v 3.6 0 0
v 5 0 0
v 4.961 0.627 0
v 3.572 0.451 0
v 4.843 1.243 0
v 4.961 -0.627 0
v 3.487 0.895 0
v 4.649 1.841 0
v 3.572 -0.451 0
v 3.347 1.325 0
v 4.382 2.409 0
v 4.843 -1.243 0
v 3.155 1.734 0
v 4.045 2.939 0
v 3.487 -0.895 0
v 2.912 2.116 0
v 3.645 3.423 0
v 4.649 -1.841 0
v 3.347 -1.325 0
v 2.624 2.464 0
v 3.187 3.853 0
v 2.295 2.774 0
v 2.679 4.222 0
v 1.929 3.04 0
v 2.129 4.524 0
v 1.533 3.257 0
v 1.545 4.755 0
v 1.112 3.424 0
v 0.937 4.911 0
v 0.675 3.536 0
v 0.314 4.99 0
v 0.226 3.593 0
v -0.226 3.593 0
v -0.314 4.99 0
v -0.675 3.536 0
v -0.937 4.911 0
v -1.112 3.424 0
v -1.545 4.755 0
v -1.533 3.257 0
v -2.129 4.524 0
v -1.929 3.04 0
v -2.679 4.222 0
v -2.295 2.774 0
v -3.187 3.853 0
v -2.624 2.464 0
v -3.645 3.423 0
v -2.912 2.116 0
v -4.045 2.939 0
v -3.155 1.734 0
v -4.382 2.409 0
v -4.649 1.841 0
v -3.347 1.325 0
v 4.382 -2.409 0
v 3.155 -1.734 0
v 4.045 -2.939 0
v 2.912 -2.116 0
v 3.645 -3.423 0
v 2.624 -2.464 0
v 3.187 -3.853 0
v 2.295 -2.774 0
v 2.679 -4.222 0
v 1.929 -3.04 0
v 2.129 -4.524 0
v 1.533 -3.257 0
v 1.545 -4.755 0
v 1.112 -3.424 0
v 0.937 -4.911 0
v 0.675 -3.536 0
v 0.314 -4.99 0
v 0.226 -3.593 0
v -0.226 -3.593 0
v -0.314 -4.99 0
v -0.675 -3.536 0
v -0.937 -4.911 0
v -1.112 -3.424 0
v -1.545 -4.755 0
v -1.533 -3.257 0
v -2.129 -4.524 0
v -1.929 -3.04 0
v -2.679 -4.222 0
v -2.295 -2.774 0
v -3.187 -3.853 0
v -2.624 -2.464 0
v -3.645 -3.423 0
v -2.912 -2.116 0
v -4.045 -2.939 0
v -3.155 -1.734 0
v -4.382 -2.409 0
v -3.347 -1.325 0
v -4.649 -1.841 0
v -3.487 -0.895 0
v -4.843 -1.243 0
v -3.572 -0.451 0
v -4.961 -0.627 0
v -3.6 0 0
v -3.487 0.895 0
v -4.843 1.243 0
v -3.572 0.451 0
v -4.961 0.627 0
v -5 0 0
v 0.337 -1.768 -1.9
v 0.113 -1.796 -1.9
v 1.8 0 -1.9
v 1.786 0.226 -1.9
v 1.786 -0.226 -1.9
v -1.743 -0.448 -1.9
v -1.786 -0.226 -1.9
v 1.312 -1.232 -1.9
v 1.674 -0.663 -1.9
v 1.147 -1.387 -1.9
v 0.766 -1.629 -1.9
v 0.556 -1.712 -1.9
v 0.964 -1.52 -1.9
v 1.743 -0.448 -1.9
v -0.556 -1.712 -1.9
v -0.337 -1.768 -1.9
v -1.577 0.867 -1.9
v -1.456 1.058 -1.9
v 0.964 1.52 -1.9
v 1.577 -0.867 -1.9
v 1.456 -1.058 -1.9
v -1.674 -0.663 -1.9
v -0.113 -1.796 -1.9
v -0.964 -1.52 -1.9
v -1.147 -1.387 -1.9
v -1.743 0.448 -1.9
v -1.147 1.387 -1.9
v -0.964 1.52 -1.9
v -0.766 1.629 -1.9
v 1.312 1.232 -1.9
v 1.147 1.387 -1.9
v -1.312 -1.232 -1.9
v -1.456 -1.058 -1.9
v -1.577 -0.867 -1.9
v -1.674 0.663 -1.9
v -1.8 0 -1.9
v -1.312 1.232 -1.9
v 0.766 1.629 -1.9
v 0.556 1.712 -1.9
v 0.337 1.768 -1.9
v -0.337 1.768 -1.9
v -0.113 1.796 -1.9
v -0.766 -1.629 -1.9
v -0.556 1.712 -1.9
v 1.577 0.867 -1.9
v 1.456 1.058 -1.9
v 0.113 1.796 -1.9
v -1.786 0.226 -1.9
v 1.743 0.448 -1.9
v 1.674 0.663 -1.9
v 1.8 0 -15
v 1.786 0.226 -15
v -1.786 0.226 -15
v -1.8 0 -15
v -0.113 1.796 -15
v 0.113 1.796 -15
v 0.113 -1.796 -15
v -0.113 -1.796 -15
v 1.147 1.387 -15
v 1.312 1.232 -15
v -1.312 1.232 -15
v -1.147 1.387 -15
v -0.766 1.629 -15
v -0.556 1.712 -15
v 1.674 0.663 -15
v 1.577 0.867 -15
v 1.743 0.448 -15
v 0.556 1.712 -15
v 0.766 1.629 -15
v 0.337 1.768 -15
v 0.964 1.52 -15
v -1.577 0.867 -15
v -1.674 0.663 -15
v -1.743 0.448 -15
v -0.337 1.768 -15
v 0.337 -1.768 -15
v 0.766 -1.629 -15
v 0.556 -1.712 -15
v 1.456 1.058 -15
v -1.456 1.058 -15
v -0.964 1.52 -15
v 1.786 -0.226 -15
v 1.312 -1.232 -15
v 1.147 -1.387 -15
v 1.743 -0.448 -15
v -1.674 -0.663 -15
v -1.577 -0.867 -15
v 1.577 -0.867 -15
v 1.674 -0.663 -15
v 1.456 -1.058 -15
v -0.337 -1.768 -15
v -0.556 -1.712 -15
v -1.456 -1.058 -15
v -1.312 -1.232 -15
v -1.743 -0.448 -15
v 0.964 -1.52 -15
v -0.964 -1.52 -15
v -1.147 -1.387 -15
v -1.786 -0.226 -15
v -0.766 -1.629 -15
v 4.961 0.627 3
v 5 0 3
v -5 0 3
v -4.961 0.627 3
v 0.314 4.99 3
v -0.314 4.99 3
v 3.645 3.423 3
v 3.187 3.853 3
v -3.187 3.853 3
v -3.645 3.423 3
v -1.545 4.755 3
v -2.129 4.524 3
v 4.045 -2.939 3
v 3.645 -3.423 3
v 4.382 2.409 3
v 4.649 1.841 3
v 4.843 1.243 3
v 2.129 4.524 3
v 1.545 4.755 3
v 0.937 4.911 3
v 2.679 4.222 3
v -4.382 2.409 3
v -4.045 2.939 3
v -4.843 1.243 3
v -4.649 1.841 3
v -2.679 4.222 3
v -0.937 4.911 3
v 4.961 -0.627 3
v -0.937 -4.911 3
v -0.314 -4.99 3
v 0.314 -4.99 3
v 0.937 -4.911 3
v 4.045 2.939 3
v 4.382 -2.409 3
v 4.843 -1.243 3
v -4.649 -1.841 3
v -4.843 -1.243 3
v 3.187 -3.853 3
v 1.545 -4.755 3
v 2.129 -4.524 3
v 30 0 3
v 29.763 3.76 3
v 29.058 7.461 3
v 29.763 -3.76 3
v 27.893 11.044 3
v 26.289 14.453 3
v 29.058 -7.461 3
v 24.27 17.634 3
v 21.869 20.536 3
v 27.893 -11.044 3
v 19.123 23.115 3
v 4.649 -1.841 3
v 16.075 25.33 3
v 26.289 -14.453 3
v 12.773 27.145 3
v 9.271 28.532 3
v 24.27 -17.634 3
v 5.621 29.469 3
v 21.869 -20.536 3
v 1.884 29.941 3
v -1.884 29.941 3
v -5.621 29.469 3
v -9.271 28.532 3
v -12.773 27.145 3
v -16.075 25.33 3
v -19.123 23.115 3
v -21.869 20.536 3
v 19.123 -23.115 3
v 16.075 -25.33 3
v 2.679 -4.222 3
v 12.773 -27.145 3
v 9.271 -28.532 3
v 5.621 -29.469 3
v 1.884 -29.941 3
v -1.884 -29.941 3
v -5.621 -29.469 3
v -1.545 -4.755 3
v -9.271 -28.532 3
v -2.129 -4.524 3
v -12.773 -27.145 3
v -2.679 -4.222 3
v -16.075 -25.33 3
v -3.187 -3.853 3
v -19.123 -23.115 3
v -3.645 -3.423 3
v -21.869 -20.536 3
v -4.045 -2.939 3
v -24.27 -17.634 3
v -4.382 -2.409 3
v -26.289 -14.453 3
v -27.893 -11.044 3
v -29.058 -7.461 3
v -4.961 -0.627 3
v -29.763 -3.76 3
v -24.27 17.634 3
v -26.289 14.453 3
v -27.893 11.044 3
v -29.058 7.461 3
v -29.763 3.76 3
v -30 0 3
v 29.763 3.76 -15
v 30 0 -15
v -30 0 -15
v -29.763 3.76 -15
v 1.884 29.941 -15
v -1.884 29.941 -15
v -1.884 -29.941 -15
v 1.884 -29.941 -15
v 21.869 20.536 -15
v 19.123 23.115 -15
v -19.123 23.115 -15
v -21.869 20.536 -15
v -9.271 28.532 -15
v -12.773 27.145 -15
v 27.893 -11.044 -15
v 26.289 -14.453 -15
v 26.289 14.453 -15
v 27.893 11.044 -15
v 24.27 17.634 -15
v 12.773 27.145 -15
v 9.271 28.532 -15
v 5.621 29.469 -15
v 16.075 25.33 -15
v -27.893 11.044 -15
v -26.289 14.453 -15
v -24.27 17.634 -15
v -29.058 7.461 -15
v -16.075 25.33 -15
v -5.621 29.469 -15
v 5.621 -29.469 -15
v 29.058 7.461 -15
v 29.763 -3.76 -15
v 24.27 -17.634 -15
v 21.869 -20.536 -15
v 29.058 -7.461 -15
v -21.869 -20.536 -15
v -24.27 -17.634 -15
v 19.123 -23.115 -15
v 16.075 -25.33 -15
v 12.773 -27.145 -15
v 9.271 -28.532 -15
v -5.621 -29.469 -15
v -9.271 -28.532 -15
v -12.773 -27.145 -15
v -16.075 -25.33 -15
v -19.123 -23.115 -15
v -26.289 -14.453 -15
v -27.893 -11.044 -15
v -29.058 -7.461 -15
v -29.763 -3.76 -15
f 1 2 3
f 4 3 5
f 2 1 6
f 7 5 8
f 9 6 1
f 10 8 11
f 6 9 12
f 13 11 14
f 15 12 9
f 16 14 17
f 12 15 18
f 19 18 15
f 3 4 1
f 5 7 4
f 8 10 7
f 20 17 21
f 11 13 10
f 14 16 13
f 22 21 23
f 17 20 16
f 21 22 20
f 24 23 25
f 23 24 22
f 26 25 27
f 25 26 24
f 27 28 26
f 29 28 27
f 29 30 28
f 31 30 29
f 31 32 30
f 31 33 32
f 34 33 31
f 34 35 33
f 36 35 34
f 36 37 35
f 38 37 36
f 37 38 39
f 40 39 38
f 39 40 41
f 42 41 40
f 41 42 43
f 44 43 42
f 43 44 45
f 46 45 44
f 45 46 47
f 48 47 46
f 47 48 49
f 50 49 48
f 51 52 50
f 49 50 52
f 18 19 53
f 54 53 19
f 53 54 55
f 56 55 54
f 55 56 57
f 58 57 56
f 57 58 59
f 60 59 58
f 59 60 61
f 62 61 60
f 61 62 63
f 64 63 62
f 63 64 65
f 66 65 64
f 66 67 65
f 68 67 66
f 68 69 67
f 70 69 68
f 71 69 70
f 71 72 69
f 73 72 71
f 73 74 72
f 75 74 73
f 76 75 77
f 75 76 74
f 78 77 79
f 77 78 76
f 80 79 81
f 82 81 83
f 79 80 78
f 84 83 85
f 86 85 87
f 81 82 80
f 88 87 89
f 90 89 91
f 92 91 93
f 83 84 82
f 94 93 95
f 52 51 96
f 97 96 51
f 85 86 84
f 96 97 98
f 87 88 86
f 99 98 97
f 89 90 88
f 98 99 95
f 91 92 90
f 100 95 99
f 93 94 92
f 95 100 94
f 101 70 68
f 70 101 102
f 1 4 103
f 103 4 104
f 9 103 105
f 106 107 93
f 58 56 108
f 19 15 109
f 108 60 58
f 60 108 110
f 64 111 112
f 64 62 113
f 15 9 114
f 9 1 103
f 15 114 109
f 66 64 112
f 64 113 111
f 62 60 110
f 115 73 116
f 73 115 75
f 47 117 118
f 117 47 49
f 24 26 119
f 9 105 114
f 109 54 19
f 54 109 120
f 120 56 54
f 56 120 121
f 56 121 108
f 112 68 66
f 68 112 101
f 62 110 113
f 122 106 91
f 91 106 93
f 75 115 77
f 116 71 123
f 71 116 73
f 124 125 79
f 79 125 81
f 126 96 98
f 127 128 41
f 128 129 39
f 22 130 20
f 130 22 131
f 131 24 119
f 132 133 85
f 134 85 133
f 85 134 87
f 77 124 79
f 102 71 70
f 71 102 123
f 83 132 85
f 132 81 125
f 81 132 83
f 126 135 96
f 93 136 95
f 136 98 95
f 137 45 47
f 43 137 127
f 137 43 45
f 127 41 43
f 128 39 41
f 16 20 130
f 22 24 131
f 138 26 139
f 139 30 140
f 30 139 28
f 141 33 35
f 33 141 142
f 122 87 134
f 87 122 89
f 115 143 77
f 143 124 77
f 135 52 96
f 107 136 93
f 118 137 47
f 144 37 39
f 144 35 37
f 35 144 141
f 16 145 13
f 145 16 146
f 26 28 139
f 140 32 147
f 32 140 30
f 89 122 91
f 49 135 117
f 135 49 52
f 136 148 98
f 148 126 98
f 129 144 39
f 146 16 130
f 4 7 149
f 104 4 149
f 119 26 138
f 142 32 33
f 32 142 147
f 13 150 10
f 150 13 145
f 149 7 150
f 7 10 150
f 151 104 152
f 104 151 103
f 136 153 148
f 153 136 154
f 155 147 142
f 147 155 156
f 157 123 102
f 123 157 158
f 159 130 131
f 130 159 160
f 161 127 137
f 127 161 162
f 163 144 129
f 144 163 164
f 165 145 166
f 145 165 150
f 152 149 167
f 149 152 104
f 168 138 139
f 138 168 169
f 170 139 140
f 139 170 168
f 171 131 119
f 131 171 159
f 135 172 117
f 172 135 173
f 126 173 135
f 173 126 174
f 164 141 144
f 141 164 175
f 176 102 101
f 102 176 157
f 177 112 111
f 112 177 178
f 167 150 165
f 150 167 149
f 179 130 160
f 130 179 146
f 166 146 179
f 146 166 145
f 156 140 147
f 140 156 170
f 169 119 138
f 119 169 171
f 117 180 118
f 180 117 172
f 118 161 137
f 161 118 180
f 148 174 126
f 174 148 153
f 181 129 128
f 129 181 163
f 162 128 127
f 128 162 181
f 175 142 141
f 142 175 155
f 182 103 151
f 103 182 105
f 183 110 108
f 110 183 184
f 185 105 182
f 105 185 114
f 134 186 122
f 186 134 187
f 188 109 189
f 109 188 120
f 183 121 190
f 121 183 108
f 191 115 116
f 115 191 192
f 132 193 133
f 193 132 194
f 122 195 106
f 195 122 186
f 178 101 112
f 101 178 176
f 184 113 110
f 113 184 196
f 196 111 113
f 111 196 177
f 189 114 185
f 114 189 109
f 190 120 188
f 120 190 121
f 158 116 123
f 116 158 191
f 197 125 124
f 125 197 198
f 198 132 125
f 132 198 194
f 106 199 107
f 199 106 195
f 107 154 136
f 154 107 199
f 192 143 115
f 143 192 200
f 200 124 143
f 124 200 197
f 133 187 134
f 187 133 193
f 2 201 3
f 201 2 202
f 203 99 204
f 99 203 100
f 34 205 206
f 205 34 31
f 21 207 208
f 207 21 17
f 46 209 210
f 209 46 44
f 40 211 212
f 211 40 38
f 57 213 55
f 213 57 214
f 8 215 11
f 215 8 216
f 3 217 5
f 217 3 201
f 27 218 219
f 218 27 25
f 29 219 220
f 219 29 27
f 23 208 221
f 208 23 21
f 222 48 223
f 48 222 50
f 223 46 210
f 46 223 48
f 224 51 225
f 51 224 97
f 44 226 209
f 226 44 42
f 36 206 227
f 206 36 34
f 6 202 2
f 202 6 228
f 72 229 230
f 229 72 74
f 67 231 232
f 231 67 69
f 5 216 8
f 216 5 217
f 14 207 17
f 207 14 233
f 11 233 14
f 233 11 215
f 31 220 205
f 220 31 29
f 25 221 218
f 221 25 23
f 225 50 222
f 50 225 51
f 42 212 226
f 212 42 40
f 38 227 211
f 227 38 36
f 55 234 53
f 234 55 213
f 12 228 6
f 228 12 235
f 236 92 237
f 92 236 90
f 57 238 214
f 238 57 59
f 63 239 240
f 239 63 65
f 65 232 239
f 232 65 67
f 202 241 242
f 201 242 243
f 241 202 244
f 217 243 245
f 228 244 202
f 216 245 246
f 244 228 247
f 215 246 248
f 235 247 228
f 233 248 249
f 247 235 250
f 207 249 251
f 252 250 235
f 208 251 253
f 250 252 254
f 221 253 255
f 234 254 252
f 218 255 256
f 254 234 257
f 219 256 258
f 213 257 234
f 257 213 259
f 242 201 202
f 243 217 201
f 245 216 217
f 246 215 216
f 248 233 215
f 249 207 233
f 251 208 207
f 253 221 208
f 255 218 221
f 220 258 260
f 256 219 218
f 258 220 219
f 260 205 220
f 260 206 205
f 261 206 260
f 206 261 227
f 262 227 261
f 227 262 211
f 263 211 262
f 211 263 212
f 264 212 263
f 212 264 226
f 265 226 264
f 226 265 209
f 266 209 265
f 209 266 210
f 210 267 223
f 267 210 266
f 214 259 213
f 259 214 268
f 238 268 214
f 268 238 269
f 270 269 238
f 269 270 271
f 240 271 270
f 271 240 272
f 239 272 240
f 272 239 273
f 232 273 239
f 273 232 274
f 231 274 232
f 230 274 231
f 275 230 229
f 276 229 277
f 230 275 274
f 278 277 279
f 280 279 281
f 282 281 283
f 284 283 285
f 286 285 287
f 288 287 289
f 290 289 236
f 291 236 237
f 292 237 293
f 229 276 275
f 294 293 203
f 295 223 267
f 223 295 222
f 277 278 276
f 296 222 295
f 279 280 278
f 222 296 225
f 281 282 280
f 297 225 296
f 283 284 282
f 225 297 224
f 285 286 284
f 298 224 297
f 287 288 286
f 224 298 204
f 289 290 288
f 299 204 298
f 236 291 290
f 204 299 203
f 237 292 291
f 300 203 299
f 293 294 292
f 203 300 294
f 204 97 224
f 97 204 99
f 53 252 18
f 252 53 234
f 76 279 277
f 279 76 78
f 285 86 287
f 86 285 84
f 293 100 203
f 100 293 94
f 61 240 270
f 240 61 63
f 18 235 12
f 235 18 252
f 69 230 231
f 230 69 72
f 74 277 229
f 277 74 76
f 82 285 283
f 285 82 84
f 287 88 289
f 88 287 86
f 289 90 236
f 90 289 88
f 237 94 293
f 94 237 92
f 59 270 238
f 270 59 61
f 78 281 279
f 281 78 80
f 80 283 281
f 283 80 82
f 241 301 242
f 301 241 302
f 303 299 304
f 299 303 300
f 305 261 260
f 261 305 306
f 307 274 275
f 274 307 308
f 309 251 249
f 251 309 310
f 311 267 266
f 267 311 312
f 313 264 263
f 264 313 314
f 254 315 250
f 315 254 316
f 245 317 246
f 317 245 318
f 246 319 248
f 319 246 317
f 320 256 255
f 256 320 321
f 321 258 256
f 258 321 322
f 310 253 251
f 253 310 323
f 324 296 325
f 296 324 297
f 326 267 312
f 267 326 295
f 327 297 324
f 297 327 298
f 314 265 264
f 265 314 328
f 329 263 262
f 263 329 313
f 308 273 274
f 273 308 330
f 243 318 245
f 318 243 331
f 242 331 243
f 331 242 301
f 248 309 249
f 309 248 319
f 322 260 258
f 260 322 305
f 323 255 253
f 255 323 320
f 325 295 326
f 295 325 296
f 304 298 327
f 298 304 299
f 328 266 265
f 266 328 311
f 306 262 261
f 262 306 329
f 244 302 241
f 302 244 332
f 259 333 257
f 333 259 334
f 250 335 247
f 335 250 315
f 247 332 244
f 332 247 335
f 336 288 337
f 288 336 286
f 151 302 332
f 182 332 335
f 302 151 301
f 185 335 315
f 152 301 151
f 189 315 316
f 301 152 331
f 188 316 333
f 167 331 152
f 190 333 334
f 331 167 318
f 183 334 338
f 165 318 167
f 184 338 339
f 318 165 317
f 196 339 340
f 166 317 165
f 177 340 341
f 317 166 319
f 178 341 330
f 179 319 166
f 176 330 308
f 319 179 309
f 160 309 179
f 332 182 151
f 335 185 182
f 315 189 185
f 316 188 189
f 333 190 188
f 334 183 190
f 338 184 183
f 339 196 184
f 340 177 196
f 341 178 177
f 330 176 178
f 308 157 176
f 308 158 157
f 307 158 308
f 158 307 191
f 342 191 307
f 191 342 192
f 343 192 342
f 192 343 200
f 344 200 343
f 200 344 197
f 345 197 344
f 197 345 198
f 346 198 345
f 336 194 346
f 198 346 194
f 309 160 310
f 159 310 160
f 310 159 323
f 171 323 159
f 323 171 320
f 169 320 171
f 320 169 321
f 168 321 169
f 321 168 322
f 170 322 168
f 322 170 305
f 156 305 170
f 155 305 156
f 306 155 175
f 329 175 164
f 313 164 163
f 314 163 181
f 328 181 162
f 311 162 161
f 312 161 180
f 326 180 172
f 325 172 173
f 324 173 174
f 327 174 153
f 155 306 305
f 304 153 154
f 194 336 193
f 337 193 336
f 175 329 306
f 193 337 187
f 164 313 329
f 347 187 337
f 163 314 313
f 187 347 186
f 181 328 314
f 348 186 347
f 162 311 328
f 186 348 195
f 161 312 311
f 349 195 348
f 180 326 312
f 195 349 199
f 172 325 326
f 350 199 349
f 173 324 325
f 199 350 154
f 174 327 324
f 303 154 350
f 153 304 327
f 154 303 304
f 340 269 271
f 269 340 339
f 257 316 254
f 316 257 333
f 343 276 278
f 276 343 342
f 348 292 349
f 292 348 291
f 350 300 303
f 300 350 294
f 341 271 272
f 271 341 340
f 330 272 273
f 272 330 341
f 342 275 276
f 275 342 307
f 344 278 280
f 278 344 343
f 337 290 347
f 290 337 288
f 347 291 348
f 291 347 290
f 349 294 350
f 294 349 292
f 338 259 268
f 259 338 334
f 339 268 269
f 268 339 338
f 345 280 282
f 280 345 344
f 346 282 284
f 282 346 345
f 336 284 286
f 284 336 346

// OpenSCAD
$fn = 50;

difference() {
	union() {
		translate(v = [0, 0, -15.0]) {
			cylinder(h = 18, r = 30.0);
		}
	}
	union() {
		translate(v = [0, 0, 0]) {
			rotate(a = [0, 0, 0]) {
				difference() {
					union() {
						translate(v = [0, 0, -18.0]) {
							cylinder(h = 18, r = 1.5);
						}
						translate(v = [0, 0, -1.9]) {
							cylinder(h = 1.9, r1 = 1.8, r2 = 3.6);
						}
						translate(v = [0, 0, -18.0]) {
							cylinder(h = 18, r = 1.8);
						}
						translate(v = [0, 0, -18.0]) {
							cylinder(h = 18, r = 1.5);
						}
					}
					union();
				}
			}
		}
		#cylinder(h = 3, r = 5.0);
	}
}
